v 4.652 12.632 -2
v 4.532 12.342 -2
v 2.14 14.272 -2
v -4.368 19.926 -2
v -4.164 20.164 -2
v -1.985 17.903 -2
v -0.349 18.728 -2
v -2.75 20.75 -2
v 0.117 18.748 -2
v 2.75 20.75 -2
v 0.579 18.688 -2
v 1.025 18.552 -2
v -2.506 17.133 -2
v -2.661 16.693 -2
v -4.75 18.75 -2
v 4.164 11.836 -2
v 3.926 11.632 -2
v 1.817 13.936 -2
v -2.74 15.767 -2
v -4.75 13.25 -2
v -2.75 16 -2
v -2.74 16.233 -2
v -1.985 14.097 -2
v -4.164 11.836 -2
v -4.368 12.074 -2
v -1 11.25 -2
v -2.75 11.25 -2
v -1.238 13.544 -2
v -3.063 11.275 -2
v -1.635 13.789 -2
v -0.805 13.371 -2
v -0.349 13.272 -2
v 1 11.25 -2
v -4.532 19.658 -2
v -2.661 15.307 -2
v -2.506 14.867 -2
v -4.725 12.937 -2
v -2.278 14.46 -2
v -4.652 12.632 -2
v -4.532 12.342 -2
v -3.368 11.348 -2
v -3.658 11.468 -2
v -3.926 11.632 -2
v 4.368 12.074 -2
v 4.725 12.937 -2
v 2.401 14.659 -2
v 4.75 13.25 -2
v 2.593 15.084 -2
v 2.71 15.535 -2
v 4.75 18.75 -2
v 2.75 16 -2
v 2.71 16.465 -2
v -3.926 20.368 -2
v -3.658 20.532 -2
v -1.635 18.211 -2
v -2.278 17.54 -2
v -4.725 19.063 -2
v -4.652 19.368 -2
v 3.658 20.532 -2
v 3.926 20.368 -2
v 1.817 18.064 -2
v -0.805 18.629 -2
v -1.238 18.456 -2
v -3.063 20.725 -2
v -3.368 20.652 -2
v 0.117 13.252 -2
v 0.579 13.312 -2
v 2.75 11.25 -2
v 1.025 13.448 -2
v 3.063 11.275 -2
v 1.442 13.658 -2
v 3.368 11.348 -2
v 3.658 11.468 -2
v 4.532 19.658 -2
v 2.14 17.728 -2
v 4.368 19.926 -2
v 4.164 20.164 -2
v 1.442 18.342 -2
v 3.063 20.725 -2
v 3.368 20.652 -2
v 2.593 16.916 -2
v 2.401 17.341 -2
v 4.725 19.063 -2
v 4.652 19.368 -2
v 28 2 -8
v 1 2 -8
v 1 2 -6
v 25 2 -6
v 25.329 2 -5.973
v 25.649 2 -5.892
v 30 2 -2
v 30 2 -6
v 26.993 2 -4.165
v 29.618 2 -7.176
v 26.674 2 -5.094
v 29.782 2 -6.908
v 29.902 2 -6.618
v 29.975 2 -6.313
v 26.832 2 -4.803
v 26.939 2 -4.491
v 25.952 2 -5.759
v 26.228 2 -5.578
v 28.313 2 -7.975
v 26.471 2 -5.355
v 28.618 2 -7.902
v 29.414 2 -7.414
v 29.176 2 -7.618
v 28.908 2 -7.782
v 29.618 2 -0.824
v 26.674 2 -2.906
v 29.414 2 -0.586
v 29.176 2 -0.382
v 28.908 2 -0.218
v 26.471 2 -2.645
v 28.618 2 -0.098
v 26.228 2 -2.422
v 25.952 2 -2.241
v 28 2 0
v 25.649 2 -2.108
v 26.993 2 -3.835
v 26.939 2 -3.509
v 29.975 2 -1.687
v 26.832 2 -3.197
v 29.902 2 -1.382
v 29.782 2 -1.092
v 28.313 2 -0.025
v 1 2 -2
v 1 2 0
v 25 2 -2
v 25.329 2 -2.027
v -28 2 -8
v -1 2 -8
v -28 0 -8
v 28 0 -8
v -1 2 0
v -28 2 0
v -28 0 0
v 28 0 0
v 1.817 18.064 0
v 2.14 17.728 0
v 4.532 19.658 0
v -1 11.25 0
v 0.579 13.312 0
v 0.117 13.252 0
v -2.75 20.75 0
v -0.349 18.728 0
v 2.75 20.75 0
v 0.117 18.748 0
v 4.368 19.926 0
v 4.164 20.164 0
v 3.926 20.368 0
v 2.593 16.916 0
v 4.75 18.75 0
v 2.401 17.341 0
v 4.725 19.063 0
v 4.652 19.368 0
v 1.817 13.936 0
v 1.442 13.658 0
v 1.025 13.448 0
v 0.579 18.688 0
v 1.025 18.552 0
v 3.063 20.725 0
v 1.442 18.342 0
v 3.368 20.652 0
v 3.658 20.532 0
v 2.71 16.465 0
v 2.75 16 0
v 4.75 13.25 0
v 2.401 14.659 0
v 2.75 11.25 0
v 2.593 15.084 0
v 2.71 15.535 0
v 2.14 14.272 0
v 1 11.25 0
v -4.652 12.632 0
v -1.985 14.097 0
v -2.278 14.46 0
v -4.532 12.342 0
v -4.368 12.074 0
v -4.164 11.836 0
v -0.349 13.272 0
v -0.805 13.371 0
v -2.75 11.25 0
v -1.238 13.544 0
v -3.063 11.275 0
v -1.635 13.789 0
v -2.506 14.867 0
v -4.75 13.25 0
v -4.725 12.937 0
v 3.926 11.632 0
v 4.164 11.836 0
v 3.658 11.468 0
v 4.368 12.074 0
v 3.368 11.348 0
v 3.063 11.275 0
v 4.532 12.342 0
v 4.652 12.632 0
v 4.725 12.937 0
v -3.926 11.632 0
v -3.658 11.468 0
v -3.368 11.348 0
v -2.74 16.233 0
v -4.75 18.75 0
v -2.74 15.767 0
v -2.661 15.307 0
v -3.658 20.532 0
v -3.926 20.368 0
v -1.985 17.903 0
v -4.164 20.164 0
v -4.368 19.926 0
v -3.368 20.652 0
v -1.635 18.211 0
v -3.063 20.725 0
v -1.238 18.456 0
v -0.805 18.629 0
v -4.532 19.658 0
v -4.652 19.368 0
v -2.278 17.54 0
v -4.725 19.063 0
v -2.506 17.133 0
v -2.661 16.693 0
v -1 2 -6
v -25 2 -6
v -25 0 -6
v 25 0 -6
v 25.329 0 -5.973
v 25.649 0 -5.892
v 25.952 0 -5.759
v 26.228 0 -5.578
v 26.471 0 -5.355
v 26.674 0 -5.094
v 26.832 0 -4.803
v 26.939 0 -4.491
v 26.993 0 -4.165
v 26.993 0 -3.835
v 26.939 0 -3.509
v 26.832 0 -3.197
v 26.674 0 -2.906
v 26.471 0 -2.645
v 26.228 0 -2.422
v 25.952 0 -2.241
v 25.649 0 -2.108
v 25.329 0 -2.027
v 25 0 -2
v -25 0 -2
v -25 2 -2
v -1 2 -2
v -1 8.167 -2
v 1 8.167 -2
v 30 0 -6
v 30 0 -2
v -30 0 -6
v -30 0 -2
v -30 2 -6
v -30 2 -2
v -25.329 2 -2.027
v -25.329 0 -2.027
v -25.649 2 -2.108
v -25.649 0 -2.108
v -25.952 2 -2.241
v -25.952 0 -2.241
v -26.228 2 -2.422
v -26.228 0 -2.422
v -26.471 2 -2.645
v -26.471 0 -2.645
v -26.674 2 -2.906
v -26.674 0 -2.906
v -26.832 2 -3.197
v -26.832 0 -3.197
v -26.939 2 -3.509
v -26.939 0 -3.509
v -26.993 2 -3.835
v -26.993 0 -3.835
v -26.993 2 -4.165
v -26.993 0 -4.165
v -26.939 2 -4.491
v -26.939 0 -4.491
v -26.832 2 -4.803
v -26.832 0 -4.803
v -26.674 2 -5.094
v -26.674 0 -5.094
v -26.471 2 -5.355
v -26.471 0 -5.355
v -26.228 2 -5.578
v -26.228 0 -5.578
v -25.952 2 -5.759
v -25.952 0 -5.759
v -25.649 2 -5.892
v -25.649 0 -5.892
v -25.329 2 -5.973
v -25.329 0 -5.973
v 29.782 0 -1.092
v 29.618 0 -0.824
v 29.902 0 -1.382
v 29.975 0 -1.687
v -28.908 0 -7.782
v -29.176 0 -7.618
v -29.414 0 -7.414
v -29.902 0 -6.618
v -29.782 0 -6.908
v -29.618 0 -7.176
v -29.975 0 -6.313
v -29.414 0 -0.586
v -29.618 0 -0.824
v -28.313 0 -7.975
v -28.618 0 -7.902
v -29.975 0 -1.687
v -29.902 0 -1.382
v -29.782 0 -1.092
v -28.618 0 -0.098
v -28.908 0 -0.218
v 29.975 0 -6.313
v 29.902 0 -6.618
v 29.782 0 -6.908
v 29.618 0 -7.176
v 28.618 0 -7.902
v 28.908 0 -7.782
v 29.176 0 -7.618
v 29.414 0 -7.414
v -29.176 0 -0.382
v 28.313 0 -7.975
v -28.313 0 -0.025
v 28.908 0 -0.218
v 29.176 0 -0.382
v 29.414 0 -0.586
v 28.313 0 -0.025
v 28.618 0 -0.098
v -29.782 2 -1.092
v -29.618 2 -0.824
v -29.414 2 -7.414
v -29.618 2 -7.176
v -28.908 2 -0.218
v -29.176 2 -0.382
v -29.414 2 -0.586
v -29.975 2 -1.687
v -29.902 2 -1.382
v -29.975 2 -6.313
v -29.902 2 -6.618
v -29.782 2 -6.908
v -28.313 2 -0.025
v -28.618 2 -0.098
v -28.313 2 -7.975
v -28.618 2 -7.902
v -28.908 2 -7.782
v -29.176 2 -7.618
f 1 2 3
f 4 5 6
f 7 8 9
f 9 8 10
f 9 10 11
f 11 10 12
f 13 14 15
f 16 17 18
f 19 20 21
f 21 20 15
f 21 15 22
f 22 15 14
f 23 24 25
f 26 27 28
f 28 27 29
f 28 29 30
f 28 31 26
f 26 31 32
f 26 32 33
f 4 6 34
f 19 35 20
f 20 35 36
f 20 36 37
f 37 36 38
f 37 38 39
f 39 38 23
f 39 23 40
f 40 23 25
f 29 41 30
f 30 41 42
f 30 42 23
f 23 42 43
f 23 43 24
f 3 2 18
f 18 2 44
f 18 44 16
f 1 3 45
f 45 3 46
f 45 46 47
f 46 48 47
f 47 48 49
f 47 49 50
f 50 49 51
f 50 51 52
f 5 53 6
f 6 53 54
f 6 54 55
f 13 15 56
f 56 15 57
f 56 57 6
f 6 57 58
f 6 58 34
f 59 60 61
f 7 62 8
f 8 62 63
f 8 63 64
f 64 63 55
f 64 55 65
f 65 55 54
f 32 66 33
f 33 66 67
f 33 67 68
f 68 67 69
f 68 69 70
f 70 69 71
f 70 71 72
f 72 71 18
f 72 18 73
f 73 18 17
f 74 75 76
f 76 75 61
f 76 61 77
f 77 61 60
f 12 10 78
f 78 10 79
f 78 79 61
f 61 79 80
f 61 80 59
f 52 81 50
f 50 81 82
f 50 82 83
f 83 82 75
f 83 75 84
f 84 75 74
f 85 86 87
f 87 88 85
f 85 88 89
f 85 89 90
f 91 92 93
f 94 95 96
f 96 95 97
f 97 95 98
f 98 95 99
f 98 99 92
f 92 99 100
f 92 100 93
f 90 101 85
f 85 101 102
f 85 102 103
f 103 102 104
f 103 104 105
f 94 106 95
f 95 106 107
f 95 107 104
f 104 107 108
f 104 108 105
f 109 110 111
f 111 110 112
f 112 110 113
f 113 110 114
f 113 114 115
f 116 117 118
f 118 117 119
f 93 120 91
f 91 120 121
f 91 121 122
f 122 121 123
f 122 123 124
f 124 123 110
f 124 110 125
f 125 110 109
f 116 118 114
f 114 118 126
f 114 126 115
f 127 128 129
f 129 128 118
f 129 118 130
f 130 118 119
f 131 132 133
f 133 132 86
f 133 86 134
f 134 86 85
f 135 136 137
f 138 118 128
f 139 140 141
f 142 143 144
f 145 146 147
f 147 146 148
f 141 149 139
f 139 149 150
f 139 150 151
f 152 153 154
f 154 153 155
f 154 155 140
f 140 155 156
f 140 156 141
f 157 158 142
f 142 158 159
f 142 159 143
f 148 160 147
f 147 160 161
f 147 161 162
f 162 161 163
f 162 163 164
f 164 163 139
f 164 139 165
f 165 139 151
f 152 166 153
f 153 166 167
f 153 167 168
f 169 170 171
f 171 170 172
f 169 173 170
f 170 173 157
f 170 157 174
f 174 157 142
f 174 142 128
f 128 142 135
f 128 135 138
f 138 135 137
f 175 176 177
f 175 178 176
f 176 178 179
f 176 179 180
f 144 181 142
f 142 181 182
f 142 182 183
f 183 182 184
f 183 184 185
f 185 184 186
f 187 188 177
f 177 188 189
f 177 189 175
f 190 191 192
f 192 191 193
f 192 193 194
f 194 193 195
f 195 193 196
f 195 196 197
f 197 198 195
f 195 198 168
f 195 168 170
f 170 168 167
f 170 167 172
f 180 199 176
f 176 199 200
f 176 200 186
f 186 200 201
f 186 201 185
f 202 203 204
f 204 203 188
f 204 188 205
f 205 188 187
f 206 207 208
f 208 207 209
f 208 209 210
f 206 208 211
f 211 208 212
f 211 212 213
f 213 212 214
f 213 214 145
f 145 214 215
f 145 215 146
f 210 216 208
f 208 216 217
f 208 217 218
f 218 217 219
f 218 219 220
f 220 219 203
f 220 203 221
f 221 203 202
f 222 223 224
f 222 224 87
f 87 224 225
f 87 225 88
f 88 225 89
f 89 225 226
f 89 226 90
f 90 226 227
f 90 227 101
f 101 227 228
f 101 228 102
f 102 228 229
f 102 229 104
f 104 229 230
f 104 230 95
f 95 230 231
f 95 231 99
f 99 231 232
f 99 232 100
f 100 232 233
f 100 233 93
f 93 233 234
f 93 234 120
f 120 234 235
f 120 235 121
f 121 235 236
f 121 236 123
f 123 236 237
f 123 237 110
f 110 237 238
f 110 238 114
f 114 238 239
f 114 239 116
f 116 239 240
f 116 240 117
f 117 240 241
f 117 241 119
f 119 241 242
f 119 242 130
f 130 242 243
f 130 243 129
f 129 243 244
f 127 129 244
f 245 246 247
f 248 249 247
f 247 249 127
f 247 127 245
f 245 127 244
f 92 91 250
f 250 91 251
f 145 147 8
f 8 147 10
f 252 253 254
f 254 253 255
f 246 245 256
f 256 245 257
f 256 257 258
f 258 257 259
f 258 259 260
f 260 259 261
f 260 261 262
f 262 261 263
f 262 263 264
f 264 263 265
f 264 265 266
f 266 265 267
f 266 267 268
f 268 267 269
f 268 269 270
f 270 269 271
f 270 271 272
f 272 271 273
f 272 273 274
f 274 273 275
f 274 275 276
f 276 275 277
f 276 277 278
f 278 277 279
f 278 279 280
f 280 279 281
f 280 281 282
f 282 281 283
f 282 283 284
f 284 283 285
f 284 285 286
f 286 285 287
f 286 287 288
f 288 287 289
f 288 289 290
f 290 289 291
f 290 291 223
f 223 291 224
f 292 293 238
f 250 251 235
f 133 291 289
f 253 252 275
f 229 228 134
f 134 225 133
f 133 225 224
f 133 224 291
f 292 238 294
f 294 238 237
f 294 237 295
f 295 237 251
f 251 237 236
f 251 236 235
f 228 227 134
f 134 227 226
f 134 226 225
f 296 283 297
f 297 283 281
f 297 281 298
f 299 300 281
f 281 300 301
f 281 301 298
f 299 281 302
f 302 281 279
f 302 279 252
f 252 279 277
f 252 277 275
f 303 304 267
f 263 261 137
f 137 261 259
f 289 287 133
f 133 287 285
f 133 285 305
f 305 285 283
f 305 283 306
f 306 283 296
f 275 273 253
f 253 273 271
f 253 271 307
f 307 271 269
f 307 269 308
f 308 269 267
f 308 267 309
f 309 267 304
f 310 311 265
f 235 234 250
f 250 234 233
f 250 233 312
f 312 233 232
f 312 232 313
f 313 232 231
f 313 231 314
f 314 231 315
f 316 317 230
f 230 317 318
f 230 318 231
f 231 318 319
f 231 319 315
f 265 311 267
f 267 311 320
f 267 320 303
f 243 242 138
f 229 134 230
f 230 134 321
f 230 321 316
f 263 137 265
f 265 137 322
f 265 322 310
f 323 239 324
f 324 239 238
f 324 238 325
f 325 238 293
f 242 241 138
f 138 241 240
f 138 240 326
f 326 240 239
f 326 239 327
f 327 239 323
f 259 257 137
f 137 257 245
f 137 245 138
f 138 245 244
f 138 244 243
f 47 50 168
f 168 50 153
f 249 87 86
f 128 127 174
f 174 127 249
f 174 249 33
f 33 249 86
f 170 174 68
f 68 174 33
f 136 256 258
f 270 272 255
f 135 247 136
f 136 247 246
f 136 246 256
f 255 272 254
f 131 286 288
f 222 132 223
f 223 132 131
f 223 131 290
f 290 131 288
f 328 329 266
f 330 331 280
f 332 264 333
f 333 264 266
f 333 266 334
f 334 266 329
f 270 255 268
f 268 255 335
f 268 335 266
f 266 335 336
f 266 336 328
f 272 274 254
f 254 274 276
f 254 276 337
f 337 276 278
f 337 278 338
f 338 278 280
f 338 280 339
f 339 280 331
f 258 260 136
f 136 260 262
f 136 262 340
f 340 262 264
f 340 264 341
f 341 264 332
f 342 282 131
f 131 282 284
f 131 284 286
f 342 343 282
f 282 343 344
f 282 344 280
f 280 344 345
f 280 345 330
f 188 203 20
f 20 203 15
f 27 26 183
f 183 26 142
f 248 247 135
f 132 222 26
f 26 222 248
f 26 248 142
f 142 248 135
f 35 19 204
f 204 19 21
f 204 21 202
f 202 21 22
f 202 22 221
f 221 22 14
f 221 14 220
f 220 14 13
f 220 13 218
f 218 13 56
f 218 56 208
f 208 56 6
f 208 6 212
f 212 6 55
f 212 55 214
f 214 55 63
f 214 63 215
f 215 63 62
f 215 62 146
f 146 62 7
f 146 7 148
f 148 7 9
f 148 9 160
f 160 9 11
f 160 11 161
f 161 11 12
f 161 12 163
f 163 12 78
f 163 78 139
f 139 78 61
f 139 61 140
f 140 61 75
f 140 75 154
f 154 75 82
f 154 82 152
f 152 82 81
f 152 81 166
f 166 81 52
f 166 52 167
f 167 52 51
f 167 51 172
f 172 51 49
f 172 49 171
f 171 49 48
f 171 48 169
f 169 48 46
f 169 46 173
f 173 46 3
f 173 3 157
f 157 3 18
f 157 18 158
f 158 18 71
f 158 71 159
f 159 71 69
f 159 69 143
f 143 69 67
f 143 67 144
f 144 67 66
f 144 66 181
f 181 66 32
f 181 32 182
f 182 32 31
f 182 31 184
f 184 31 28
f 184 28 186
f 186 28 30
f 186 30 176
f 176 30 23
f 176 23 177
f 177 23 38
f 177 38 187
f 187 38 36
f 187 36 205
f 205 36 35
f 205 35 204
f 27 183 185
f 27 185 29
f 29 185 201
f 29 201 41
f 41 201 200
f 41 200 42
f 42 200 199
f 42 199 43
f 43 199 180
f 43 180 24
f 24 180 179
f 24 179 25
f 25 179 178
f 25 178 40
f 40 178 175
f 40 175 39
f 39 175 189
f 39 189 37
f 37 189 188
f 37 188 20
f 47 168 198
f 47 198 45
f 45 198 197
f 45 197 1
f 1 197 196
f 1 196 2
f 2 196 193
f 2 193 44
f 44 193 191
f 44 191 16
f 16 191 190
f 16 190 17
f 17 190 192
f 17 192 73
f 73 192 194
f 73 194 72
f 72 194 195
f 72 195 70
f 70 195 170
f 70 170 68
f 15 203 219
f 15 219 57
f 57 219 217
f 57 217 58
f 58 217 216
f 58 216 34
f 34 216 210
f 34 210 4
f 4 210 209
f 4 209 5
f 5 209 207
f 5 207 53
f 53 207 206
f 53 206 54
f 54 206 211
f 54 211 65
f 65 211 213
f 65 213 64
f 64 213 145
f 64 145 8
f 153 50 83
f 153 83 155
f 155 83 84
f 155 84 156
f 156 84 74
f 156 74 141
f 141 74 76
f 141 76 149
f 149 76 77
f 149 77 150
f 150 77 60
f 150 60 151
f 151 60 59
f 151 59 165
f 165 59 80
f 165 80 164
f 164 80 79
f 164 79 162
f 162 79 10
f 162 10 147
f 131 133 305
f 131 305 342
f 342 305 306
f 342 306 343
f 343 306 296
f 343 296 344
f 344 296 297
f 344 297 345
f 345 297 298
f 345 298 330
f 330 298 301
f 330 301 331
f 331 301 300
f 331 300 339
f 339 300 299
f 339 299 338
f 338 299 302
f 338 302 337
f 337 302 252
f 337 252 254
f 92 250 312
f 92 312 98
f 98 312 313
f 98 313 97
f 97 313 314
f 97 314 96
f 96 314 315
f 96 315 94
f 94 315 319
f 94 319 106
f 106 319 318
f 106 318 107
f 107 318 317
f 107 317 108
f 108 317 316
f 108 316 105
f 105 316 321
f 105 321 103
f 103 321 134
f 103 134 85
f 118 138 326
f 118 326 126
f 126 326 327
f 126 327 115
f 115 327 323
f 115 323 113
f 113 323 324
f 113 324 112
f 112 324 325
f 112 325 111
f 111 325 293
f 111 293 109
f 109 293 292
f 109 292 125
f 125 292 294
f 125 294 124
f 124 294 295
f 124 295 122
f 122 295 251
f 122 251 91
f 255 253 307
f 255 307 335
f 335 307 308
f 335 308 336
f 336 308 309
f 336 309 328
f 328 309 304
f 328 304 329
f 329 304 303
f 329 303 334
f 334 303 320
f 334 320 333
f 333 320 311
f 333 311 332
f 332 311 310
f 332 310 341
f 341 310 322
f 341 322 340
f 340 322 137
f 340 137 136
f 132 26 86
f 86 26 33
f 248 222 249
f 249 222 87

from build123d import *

# Parameters (mm, degrees)
BOSS_EXTRUDE1_DEPTH = 20.75
SKETCH2_R           = 2.75
CUT_EXTRUDE1_DEPTH  = 20.75
SKETCH3_W           = 2
SKETCH3_H           = 18.75
CUT_EXTRUDE2_DEPTH  = 20.75
FILLET1_R           = 2
BOSS_EXTRUDE2_DEPTH = 2


with BuildPart() as part:
    # Sketch1 → Boss-Extrude1 (new body)
    with BuildSketch(Plane(origin=(0, 0, 0), x_dir=(1, 0, 0), z_dir=(0, 1, 0))):
        with BuildLine():
            Line((-30, 0), (0, 0))
            Line((0, 0), (30, 0))
            Line((30, 0), (30, 4))
            Line((30, 4), (27, 4))
            ThreePointArc((27, 4), (26.414213562, 2.585786438), (25, 2))
            Line((25, 2), (-25, 2))
            ThreePointArc((-25, 2), (-26.414213562, 2.585786438), (-27, 4))
            Line((-27, 4), (-30, 4))
            Line((-30, 4), (-30, 0))
        make_face()
        with BuildLine():
            Line((27, 4), (30, 4))
            Line((30, 4), (30, 8))
            Line((30, 8), (-30, 8))
            Line((-30, 8), (-30, 4))
            Line((-30, 4), (-27, 4))
            ThreePointArc((-27, 4), (-26.414213562, 5.414213562), (-25, 6))
            Line((-25, 6), (25, 6))
            ThreePointArc((25, 6), (26.414213562, 5.414213562), (27, 4))
        make_face()
    extrude(amount=BOSS_EXTRUDE1_DEPTH)

    # Sketch2 → Cut-Extrude1 (cut)
    with BuildSketch(Plane.XY):
        Polygon((-30, 20.75), (-30, 2), (-1, 2), (-1, 11.25), (-4.75, 11.25), (-4.75, 20.75), align=None)
        with Locations((0, 16)):
            Circle(SKETCH2_R)
        Polygon((4.75, 11.25), (1, 11.25), (1, 2), (30, 2), (30, 20.75), (4.75, 20.75), align=None)
    extrude(amount=-CUT_EXTRUDE1_DEPTH, mode=Mode.SUBTRACT)

    # Sketch3 → Cut-Extrude2 (cut)
    with BuildSketch(Plane(origin=(4.75, 0, 0), x_dir=(0, 0, -1), z_dir=(1, 0, 0))):
        with Locations((7, 11.375)):
            Rectangle(SKETCH3_W, SKETCH3_H)
    extrude(amount=-CUT_EXTRUDE2_DEPTH, mode=Mode.SUBTRACT)

    # Fillet1
    fillet1_edges = [part.edges().sort_by_distance(p)[0] for p in [
        (4.75, 20.75, -1),
        (-4.75, 20.75, -1),
        (30, 1, -8),
        (30, 1, 0),
        (-30, 1, 0),
        (-30, 1, -8),
        (-4.75, 11.25, -1),
        (4.75, 11.25, -1),
    ]]
    fillet(fillet1_edges, radius=FILLET1_R)

    # Sketch5 → Boss-Extrude2 (add)
    with BuildSketch(Plane(origin=(1, 0, 0), x_dir=(0, 0, -1), z_dir=(1, 0, 0))):
        Polygon((2, 11.25), (8, 2), (6, 2), (2, 8.166666667), align=None)
    extrude(amount=-BOSS_EXTRUDE2_DEPTH)


solid = part.part
